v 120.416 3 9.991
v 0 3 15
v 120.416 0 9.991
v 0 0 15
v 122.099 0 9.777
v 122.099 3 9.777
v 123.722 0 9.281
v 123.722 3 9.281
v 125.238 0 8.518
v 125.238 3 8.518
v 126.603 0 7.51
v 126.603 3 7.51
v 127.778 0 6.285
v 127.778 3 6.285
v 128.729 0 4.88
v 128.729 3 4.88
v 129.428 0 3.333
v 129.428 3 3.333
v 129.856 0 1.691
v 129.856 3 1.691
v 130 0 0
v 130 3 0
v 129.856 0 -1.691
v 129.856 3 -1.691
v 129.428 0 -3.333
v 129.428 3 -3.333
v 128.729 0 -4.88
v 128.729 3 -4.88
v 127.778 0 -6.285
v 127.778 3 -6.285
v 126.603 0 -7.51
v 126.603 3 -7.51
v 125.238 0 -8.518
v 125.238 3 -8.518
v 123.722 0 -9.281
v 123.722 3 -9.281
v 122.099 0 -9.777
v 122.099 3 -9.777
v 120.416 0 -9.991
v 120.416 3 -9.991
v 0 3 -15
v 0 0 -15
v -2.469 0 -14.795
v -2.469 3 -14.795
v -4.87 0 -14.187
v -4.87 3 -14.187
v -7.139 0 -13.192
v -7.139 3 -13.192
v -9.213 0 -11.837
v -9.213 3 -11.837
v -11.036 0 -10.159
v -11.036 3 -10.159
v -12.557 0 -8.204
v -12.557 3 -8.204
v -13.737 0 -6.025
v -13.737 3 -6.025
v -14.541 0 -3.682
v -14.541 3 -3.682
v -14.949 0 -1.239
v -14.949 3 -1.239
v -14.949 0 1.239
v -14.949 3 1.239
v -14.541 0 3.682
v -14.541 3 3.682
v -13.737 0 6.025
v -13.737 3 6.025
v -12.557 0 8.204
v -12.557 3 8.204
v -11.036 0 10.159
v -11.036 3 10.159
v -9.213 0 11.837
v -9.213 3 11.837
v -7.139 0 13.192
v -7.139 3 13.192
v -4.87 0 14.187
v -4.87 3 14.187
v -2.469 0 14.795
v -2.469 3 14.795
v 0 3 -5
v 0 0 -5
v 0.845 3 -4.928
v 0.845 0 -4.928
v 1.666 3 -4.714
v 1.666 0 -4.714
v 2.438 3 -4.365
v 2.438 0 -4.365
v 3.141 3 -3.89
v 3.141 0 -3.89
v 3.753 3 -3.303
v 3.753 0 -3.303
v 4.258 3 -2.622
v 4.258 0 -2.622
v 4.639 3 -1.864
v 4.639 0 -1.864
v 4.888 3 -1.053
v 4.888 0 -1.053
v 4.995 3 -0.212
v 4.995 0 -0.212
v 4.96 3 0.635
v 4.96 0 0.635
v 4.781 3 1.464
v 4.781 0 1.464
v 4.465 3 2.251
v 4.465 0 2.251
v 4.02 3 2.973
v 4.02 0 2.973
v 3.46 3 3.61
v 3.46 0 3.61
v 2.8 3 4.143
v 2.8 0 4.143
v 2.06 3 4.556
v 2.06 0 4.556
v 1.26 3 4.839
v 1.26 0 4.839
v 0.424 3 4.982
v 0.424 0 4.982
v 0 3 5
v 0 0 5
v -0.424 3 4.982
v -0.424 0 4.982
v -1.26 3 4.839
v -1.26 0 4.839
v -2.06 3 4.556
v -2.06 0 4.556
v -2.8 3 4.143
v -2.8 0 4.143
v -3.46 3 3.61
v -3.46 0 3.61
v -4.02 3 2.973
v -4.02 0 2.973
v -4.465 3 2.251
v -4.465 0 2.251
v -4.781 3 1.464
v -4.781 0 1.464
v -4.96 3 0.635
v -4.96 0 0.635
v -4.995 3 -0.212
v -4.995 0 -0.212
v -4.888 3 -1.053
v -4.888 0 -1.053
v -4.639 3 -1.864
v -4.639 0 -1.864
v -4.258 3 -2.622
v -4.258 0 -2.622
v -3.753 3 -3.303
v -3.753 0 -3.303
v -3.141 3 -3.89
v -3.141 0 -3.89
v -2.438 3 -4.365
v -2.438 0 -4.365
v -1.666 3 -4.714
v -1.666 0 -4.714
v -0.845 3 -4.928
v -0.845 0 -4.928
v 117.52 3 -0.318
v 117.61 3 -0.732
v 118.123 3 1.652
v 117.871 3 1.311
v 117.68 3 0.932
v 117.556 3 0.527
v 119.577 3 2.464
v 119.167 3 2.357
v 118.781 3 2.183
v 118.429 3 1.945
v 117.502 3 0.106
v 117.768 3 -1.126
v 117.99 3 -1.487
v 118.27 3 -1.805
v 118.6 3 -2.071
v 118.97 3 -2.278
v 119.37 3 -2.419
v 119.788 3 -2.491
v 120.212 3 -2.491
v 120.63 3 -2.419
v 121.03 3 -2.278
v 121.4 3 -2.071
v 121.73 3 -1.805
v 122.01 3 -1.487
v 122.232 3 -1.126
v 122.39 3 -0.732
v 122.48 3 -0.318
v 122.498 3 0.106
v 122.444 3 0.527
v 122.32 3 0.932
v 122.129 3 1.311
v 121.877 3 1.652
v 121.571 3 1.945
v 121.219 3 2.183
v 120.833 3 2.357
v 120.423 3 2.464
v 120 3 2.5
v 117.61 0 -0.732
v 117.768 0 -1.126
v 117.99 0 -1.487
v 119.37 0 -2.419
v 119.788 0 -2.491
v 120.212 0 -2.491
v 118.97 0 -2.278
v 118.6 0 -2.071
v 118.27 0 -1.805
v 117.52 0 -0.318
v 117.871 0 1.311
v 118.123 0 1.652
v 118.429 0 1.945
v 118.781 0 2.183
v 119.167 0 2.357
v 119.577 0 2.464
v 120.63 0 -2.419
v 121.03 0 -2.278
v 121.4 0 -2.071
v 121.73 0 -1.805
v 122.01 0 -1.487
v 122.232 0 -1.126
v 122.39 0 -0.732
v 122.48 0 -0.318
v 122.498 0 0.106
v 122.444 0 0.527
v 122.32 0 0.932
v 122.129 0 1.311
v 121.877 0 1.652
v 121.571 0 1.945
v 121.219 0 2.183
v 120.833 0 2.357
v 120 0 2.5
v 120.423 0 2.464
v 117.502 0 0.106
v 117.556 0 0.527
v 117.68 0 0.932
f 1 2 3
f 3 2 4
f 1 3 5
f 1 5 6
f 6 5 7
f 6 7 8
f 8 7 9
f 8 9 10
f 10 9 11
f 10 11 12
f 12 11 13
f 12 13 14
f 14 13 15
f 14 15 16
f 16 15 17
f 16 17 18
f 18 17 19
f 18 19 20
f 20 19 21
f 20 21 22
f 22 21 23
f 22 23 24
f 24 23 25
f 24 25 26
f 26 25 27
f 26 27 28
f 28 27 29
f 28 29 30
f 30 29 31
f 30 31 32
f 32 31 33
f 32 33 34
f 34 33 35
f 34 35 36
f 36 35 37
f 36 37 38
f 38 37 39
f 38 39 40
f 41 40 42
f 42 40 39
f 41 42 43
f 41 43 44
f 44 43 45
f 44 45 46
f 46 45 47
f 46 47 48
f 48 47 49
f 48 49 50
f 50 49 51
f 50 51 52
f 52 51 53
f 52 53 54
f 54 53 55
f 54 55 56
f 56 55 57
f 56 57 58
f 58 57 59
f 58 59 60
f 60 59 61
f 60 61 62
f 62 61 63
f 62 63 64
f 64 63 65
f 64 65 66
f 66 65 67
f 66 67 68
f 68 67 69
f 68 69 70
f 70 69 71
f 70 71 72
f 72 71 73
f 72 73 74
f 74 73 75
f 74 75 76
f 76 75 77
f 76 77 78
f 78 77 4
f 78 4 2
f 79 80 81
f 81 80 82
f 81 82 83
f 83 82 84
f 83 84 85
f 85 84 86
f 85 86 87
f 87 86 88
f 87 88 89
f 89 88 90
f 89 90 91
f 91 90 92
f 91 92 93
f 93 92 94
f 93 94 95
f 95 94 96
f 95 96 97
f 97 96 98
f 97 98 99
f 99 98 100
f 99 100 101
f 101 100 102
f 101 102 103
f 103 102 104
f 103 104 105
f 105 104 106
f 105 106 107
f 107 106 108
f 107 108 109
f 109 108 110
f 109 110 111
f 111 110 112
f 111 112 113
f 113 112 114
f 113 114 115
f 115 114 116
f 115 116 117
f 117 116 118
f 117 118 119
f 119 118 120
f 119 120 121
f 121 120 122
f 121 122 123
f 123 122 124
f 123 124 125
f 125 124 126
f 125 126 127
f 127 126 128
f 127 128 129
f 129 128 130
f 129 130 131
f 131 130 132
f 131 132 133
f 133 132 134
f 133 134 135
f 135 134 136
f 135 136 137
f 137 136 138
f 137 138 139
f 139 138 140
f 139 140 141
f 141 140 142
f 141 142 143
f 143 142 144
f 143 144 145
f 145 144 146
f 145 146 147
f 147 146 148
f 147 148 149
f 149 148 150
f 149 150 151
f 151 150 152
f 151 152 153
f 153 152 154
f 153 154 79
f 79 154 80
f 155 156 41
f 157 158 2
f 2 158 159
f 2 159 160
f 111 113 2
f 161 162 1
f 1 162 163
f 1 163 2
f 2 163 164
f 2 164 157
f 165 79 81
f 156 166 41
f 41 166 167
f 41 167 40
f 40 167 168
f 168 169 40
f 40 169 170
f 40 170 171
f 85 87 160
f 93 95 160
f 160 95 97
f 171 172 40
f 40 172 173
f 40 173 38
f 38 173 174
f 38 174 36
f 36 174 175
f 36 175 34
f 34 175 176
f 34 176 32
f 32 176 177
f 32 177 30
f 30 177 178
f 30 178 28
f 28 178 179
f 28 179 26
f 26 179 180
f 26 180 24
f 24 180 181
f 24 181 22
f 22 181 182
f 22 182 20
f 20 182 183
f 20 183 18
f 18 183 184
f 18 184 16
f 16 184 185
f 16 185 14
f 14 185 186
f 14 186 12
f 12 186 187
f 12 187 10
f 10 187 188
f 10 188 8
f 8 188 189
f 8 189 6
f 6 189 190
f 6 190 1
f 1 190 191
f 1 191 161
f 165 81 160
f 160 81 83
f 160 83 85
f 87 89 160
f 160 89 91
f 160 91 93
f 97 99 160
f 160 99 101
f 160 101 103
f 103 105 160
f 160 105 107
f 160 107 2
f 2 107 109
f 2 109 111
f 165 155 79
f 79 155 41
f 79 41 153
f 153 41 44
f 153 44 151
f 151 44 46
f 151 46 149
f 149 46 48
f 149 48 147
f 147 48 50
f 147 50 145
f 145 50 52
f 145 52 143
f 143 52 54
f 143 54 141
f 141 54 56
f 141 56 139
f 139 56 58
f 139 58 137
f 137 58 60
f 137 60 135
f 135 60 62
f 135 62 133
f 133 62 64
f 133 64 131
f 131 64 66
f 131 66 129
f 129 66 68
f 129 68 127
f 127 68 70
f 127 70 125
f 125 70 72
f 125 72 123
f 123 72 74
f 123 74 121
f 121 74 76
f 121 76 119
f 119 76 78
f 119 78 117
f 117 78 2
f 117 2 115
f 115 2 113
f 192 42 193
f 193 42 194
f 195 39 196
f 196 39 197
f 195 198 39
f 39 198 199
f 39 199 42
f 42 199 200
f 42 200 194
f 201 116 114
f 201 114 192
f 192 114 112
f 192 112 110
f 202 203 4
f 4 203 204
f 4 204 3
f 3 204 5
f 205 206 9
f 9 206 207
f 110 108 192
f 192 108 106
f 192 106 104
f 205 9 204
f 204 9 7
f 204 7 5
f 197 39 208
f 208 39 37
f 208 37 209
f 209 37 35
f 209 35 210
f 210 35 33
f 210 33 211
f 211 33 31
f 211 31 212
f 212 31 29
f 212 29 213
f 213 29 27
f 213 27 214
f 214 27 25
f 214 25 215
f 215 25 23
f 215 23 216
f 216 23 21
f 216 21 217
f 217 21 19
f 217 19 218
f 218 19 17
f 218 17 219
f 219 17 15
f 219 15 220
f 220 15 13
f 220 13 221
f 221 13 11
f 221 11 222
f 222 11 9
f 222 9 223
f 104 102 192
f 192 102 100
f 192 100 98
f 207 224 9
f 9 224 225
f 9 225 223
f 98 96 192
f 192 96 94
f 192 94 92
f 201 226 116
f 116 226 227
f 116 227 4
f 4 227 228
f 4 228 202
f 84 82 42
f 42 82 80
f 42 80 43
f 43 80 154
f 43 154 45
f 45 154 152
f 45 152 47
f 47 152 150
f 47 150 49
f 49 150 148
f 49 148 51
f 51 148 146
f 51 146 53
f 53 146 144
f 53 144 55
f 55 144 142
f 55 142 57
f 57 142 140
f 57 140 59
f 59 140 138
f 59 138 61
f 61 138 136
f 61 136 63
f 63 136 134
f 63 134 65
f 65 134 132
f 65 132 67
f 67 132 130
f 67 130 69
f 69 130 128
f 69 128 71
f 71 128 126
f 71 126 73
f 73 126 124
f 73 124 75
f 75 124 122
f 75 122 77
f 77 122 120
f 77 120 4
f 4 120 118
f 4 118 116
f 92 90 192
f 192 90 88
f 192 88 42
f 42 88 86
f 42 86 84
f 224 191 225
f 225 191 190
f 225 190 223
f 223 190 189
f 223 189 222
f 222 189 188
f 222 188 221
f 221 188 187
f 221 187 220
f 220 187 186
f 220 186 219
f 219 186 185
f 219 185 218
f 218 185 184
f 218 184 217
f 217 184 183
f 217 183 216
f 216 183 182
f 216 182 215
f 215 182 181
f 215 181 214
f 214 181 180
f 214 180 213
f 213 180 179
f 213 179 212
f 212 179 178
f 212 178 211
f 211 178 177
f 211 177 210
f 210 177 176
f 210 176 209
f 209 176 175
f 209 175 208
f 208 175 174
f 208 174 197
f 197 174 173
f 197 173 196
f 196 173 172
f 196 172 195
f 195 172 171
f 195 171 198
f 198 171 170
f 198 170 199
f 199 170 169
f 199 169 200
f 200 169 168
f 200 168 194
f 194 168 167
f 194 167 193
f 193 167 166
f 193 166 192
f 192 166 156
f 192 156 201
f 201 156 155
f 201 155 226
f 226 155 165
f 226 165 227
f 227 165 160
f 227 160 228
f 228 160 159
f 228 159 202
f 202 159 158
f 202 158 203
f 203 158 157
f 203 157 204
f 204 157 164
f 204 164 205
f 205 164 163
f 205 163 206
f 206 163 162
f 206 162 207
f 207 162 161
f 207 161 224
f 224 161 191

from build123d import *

# Parameters (mm, degrees)
SKETCH_1_R          = 5
EXTRUDE_1_DEPTH     = 3
SKETCH_2_R          = 2.5
CUT_EXTRUDE_1_DEPTH = 131.896905999


with BuildPart() as part:
    # 草图1 → 凸台-拉伸1 (new body)
    with BuildSketch(Plane(origin=(0, 0, 0), x_dir=(1, 0, 0), z_dir=(0, 1, 0))):
        with BuildLine():
            Line((0, -15), (120.415586748, -9.991360651))
            ThreePointArc((120.415586748, -9.991360651), (130, 0), (120.415586748, 9.991360651))
            Line((120.415586748, 9.991360651), (0, 15))
            ThreePointArc((0, 15), (-15, 0), (0, -15))
        make_face()
        with Locations(Location((0, 0, 0), (0, 0, 270))):
            Circle(SKETCH_1_R, mode=Mode.SUBTRACT)
    extrude(amount=EXTRUDE_1_DEPTH)

    # 草图2 → 切除-拉伸1 (cut, through all)
    with BuildSketch(Plane(origin=(0, 3, 0), x_dir=(1, 0, 0), z_dir=(0, 1, 0))):
        with Locations(Location((120, 0, 0), (0, 0, 270))):
            Circle(SKETCH_2_R)
    extrude(amount=-CUT_EXTRUDE_1_DEPTH, mode=Mode.SUBTRACT)


solid = part.part
